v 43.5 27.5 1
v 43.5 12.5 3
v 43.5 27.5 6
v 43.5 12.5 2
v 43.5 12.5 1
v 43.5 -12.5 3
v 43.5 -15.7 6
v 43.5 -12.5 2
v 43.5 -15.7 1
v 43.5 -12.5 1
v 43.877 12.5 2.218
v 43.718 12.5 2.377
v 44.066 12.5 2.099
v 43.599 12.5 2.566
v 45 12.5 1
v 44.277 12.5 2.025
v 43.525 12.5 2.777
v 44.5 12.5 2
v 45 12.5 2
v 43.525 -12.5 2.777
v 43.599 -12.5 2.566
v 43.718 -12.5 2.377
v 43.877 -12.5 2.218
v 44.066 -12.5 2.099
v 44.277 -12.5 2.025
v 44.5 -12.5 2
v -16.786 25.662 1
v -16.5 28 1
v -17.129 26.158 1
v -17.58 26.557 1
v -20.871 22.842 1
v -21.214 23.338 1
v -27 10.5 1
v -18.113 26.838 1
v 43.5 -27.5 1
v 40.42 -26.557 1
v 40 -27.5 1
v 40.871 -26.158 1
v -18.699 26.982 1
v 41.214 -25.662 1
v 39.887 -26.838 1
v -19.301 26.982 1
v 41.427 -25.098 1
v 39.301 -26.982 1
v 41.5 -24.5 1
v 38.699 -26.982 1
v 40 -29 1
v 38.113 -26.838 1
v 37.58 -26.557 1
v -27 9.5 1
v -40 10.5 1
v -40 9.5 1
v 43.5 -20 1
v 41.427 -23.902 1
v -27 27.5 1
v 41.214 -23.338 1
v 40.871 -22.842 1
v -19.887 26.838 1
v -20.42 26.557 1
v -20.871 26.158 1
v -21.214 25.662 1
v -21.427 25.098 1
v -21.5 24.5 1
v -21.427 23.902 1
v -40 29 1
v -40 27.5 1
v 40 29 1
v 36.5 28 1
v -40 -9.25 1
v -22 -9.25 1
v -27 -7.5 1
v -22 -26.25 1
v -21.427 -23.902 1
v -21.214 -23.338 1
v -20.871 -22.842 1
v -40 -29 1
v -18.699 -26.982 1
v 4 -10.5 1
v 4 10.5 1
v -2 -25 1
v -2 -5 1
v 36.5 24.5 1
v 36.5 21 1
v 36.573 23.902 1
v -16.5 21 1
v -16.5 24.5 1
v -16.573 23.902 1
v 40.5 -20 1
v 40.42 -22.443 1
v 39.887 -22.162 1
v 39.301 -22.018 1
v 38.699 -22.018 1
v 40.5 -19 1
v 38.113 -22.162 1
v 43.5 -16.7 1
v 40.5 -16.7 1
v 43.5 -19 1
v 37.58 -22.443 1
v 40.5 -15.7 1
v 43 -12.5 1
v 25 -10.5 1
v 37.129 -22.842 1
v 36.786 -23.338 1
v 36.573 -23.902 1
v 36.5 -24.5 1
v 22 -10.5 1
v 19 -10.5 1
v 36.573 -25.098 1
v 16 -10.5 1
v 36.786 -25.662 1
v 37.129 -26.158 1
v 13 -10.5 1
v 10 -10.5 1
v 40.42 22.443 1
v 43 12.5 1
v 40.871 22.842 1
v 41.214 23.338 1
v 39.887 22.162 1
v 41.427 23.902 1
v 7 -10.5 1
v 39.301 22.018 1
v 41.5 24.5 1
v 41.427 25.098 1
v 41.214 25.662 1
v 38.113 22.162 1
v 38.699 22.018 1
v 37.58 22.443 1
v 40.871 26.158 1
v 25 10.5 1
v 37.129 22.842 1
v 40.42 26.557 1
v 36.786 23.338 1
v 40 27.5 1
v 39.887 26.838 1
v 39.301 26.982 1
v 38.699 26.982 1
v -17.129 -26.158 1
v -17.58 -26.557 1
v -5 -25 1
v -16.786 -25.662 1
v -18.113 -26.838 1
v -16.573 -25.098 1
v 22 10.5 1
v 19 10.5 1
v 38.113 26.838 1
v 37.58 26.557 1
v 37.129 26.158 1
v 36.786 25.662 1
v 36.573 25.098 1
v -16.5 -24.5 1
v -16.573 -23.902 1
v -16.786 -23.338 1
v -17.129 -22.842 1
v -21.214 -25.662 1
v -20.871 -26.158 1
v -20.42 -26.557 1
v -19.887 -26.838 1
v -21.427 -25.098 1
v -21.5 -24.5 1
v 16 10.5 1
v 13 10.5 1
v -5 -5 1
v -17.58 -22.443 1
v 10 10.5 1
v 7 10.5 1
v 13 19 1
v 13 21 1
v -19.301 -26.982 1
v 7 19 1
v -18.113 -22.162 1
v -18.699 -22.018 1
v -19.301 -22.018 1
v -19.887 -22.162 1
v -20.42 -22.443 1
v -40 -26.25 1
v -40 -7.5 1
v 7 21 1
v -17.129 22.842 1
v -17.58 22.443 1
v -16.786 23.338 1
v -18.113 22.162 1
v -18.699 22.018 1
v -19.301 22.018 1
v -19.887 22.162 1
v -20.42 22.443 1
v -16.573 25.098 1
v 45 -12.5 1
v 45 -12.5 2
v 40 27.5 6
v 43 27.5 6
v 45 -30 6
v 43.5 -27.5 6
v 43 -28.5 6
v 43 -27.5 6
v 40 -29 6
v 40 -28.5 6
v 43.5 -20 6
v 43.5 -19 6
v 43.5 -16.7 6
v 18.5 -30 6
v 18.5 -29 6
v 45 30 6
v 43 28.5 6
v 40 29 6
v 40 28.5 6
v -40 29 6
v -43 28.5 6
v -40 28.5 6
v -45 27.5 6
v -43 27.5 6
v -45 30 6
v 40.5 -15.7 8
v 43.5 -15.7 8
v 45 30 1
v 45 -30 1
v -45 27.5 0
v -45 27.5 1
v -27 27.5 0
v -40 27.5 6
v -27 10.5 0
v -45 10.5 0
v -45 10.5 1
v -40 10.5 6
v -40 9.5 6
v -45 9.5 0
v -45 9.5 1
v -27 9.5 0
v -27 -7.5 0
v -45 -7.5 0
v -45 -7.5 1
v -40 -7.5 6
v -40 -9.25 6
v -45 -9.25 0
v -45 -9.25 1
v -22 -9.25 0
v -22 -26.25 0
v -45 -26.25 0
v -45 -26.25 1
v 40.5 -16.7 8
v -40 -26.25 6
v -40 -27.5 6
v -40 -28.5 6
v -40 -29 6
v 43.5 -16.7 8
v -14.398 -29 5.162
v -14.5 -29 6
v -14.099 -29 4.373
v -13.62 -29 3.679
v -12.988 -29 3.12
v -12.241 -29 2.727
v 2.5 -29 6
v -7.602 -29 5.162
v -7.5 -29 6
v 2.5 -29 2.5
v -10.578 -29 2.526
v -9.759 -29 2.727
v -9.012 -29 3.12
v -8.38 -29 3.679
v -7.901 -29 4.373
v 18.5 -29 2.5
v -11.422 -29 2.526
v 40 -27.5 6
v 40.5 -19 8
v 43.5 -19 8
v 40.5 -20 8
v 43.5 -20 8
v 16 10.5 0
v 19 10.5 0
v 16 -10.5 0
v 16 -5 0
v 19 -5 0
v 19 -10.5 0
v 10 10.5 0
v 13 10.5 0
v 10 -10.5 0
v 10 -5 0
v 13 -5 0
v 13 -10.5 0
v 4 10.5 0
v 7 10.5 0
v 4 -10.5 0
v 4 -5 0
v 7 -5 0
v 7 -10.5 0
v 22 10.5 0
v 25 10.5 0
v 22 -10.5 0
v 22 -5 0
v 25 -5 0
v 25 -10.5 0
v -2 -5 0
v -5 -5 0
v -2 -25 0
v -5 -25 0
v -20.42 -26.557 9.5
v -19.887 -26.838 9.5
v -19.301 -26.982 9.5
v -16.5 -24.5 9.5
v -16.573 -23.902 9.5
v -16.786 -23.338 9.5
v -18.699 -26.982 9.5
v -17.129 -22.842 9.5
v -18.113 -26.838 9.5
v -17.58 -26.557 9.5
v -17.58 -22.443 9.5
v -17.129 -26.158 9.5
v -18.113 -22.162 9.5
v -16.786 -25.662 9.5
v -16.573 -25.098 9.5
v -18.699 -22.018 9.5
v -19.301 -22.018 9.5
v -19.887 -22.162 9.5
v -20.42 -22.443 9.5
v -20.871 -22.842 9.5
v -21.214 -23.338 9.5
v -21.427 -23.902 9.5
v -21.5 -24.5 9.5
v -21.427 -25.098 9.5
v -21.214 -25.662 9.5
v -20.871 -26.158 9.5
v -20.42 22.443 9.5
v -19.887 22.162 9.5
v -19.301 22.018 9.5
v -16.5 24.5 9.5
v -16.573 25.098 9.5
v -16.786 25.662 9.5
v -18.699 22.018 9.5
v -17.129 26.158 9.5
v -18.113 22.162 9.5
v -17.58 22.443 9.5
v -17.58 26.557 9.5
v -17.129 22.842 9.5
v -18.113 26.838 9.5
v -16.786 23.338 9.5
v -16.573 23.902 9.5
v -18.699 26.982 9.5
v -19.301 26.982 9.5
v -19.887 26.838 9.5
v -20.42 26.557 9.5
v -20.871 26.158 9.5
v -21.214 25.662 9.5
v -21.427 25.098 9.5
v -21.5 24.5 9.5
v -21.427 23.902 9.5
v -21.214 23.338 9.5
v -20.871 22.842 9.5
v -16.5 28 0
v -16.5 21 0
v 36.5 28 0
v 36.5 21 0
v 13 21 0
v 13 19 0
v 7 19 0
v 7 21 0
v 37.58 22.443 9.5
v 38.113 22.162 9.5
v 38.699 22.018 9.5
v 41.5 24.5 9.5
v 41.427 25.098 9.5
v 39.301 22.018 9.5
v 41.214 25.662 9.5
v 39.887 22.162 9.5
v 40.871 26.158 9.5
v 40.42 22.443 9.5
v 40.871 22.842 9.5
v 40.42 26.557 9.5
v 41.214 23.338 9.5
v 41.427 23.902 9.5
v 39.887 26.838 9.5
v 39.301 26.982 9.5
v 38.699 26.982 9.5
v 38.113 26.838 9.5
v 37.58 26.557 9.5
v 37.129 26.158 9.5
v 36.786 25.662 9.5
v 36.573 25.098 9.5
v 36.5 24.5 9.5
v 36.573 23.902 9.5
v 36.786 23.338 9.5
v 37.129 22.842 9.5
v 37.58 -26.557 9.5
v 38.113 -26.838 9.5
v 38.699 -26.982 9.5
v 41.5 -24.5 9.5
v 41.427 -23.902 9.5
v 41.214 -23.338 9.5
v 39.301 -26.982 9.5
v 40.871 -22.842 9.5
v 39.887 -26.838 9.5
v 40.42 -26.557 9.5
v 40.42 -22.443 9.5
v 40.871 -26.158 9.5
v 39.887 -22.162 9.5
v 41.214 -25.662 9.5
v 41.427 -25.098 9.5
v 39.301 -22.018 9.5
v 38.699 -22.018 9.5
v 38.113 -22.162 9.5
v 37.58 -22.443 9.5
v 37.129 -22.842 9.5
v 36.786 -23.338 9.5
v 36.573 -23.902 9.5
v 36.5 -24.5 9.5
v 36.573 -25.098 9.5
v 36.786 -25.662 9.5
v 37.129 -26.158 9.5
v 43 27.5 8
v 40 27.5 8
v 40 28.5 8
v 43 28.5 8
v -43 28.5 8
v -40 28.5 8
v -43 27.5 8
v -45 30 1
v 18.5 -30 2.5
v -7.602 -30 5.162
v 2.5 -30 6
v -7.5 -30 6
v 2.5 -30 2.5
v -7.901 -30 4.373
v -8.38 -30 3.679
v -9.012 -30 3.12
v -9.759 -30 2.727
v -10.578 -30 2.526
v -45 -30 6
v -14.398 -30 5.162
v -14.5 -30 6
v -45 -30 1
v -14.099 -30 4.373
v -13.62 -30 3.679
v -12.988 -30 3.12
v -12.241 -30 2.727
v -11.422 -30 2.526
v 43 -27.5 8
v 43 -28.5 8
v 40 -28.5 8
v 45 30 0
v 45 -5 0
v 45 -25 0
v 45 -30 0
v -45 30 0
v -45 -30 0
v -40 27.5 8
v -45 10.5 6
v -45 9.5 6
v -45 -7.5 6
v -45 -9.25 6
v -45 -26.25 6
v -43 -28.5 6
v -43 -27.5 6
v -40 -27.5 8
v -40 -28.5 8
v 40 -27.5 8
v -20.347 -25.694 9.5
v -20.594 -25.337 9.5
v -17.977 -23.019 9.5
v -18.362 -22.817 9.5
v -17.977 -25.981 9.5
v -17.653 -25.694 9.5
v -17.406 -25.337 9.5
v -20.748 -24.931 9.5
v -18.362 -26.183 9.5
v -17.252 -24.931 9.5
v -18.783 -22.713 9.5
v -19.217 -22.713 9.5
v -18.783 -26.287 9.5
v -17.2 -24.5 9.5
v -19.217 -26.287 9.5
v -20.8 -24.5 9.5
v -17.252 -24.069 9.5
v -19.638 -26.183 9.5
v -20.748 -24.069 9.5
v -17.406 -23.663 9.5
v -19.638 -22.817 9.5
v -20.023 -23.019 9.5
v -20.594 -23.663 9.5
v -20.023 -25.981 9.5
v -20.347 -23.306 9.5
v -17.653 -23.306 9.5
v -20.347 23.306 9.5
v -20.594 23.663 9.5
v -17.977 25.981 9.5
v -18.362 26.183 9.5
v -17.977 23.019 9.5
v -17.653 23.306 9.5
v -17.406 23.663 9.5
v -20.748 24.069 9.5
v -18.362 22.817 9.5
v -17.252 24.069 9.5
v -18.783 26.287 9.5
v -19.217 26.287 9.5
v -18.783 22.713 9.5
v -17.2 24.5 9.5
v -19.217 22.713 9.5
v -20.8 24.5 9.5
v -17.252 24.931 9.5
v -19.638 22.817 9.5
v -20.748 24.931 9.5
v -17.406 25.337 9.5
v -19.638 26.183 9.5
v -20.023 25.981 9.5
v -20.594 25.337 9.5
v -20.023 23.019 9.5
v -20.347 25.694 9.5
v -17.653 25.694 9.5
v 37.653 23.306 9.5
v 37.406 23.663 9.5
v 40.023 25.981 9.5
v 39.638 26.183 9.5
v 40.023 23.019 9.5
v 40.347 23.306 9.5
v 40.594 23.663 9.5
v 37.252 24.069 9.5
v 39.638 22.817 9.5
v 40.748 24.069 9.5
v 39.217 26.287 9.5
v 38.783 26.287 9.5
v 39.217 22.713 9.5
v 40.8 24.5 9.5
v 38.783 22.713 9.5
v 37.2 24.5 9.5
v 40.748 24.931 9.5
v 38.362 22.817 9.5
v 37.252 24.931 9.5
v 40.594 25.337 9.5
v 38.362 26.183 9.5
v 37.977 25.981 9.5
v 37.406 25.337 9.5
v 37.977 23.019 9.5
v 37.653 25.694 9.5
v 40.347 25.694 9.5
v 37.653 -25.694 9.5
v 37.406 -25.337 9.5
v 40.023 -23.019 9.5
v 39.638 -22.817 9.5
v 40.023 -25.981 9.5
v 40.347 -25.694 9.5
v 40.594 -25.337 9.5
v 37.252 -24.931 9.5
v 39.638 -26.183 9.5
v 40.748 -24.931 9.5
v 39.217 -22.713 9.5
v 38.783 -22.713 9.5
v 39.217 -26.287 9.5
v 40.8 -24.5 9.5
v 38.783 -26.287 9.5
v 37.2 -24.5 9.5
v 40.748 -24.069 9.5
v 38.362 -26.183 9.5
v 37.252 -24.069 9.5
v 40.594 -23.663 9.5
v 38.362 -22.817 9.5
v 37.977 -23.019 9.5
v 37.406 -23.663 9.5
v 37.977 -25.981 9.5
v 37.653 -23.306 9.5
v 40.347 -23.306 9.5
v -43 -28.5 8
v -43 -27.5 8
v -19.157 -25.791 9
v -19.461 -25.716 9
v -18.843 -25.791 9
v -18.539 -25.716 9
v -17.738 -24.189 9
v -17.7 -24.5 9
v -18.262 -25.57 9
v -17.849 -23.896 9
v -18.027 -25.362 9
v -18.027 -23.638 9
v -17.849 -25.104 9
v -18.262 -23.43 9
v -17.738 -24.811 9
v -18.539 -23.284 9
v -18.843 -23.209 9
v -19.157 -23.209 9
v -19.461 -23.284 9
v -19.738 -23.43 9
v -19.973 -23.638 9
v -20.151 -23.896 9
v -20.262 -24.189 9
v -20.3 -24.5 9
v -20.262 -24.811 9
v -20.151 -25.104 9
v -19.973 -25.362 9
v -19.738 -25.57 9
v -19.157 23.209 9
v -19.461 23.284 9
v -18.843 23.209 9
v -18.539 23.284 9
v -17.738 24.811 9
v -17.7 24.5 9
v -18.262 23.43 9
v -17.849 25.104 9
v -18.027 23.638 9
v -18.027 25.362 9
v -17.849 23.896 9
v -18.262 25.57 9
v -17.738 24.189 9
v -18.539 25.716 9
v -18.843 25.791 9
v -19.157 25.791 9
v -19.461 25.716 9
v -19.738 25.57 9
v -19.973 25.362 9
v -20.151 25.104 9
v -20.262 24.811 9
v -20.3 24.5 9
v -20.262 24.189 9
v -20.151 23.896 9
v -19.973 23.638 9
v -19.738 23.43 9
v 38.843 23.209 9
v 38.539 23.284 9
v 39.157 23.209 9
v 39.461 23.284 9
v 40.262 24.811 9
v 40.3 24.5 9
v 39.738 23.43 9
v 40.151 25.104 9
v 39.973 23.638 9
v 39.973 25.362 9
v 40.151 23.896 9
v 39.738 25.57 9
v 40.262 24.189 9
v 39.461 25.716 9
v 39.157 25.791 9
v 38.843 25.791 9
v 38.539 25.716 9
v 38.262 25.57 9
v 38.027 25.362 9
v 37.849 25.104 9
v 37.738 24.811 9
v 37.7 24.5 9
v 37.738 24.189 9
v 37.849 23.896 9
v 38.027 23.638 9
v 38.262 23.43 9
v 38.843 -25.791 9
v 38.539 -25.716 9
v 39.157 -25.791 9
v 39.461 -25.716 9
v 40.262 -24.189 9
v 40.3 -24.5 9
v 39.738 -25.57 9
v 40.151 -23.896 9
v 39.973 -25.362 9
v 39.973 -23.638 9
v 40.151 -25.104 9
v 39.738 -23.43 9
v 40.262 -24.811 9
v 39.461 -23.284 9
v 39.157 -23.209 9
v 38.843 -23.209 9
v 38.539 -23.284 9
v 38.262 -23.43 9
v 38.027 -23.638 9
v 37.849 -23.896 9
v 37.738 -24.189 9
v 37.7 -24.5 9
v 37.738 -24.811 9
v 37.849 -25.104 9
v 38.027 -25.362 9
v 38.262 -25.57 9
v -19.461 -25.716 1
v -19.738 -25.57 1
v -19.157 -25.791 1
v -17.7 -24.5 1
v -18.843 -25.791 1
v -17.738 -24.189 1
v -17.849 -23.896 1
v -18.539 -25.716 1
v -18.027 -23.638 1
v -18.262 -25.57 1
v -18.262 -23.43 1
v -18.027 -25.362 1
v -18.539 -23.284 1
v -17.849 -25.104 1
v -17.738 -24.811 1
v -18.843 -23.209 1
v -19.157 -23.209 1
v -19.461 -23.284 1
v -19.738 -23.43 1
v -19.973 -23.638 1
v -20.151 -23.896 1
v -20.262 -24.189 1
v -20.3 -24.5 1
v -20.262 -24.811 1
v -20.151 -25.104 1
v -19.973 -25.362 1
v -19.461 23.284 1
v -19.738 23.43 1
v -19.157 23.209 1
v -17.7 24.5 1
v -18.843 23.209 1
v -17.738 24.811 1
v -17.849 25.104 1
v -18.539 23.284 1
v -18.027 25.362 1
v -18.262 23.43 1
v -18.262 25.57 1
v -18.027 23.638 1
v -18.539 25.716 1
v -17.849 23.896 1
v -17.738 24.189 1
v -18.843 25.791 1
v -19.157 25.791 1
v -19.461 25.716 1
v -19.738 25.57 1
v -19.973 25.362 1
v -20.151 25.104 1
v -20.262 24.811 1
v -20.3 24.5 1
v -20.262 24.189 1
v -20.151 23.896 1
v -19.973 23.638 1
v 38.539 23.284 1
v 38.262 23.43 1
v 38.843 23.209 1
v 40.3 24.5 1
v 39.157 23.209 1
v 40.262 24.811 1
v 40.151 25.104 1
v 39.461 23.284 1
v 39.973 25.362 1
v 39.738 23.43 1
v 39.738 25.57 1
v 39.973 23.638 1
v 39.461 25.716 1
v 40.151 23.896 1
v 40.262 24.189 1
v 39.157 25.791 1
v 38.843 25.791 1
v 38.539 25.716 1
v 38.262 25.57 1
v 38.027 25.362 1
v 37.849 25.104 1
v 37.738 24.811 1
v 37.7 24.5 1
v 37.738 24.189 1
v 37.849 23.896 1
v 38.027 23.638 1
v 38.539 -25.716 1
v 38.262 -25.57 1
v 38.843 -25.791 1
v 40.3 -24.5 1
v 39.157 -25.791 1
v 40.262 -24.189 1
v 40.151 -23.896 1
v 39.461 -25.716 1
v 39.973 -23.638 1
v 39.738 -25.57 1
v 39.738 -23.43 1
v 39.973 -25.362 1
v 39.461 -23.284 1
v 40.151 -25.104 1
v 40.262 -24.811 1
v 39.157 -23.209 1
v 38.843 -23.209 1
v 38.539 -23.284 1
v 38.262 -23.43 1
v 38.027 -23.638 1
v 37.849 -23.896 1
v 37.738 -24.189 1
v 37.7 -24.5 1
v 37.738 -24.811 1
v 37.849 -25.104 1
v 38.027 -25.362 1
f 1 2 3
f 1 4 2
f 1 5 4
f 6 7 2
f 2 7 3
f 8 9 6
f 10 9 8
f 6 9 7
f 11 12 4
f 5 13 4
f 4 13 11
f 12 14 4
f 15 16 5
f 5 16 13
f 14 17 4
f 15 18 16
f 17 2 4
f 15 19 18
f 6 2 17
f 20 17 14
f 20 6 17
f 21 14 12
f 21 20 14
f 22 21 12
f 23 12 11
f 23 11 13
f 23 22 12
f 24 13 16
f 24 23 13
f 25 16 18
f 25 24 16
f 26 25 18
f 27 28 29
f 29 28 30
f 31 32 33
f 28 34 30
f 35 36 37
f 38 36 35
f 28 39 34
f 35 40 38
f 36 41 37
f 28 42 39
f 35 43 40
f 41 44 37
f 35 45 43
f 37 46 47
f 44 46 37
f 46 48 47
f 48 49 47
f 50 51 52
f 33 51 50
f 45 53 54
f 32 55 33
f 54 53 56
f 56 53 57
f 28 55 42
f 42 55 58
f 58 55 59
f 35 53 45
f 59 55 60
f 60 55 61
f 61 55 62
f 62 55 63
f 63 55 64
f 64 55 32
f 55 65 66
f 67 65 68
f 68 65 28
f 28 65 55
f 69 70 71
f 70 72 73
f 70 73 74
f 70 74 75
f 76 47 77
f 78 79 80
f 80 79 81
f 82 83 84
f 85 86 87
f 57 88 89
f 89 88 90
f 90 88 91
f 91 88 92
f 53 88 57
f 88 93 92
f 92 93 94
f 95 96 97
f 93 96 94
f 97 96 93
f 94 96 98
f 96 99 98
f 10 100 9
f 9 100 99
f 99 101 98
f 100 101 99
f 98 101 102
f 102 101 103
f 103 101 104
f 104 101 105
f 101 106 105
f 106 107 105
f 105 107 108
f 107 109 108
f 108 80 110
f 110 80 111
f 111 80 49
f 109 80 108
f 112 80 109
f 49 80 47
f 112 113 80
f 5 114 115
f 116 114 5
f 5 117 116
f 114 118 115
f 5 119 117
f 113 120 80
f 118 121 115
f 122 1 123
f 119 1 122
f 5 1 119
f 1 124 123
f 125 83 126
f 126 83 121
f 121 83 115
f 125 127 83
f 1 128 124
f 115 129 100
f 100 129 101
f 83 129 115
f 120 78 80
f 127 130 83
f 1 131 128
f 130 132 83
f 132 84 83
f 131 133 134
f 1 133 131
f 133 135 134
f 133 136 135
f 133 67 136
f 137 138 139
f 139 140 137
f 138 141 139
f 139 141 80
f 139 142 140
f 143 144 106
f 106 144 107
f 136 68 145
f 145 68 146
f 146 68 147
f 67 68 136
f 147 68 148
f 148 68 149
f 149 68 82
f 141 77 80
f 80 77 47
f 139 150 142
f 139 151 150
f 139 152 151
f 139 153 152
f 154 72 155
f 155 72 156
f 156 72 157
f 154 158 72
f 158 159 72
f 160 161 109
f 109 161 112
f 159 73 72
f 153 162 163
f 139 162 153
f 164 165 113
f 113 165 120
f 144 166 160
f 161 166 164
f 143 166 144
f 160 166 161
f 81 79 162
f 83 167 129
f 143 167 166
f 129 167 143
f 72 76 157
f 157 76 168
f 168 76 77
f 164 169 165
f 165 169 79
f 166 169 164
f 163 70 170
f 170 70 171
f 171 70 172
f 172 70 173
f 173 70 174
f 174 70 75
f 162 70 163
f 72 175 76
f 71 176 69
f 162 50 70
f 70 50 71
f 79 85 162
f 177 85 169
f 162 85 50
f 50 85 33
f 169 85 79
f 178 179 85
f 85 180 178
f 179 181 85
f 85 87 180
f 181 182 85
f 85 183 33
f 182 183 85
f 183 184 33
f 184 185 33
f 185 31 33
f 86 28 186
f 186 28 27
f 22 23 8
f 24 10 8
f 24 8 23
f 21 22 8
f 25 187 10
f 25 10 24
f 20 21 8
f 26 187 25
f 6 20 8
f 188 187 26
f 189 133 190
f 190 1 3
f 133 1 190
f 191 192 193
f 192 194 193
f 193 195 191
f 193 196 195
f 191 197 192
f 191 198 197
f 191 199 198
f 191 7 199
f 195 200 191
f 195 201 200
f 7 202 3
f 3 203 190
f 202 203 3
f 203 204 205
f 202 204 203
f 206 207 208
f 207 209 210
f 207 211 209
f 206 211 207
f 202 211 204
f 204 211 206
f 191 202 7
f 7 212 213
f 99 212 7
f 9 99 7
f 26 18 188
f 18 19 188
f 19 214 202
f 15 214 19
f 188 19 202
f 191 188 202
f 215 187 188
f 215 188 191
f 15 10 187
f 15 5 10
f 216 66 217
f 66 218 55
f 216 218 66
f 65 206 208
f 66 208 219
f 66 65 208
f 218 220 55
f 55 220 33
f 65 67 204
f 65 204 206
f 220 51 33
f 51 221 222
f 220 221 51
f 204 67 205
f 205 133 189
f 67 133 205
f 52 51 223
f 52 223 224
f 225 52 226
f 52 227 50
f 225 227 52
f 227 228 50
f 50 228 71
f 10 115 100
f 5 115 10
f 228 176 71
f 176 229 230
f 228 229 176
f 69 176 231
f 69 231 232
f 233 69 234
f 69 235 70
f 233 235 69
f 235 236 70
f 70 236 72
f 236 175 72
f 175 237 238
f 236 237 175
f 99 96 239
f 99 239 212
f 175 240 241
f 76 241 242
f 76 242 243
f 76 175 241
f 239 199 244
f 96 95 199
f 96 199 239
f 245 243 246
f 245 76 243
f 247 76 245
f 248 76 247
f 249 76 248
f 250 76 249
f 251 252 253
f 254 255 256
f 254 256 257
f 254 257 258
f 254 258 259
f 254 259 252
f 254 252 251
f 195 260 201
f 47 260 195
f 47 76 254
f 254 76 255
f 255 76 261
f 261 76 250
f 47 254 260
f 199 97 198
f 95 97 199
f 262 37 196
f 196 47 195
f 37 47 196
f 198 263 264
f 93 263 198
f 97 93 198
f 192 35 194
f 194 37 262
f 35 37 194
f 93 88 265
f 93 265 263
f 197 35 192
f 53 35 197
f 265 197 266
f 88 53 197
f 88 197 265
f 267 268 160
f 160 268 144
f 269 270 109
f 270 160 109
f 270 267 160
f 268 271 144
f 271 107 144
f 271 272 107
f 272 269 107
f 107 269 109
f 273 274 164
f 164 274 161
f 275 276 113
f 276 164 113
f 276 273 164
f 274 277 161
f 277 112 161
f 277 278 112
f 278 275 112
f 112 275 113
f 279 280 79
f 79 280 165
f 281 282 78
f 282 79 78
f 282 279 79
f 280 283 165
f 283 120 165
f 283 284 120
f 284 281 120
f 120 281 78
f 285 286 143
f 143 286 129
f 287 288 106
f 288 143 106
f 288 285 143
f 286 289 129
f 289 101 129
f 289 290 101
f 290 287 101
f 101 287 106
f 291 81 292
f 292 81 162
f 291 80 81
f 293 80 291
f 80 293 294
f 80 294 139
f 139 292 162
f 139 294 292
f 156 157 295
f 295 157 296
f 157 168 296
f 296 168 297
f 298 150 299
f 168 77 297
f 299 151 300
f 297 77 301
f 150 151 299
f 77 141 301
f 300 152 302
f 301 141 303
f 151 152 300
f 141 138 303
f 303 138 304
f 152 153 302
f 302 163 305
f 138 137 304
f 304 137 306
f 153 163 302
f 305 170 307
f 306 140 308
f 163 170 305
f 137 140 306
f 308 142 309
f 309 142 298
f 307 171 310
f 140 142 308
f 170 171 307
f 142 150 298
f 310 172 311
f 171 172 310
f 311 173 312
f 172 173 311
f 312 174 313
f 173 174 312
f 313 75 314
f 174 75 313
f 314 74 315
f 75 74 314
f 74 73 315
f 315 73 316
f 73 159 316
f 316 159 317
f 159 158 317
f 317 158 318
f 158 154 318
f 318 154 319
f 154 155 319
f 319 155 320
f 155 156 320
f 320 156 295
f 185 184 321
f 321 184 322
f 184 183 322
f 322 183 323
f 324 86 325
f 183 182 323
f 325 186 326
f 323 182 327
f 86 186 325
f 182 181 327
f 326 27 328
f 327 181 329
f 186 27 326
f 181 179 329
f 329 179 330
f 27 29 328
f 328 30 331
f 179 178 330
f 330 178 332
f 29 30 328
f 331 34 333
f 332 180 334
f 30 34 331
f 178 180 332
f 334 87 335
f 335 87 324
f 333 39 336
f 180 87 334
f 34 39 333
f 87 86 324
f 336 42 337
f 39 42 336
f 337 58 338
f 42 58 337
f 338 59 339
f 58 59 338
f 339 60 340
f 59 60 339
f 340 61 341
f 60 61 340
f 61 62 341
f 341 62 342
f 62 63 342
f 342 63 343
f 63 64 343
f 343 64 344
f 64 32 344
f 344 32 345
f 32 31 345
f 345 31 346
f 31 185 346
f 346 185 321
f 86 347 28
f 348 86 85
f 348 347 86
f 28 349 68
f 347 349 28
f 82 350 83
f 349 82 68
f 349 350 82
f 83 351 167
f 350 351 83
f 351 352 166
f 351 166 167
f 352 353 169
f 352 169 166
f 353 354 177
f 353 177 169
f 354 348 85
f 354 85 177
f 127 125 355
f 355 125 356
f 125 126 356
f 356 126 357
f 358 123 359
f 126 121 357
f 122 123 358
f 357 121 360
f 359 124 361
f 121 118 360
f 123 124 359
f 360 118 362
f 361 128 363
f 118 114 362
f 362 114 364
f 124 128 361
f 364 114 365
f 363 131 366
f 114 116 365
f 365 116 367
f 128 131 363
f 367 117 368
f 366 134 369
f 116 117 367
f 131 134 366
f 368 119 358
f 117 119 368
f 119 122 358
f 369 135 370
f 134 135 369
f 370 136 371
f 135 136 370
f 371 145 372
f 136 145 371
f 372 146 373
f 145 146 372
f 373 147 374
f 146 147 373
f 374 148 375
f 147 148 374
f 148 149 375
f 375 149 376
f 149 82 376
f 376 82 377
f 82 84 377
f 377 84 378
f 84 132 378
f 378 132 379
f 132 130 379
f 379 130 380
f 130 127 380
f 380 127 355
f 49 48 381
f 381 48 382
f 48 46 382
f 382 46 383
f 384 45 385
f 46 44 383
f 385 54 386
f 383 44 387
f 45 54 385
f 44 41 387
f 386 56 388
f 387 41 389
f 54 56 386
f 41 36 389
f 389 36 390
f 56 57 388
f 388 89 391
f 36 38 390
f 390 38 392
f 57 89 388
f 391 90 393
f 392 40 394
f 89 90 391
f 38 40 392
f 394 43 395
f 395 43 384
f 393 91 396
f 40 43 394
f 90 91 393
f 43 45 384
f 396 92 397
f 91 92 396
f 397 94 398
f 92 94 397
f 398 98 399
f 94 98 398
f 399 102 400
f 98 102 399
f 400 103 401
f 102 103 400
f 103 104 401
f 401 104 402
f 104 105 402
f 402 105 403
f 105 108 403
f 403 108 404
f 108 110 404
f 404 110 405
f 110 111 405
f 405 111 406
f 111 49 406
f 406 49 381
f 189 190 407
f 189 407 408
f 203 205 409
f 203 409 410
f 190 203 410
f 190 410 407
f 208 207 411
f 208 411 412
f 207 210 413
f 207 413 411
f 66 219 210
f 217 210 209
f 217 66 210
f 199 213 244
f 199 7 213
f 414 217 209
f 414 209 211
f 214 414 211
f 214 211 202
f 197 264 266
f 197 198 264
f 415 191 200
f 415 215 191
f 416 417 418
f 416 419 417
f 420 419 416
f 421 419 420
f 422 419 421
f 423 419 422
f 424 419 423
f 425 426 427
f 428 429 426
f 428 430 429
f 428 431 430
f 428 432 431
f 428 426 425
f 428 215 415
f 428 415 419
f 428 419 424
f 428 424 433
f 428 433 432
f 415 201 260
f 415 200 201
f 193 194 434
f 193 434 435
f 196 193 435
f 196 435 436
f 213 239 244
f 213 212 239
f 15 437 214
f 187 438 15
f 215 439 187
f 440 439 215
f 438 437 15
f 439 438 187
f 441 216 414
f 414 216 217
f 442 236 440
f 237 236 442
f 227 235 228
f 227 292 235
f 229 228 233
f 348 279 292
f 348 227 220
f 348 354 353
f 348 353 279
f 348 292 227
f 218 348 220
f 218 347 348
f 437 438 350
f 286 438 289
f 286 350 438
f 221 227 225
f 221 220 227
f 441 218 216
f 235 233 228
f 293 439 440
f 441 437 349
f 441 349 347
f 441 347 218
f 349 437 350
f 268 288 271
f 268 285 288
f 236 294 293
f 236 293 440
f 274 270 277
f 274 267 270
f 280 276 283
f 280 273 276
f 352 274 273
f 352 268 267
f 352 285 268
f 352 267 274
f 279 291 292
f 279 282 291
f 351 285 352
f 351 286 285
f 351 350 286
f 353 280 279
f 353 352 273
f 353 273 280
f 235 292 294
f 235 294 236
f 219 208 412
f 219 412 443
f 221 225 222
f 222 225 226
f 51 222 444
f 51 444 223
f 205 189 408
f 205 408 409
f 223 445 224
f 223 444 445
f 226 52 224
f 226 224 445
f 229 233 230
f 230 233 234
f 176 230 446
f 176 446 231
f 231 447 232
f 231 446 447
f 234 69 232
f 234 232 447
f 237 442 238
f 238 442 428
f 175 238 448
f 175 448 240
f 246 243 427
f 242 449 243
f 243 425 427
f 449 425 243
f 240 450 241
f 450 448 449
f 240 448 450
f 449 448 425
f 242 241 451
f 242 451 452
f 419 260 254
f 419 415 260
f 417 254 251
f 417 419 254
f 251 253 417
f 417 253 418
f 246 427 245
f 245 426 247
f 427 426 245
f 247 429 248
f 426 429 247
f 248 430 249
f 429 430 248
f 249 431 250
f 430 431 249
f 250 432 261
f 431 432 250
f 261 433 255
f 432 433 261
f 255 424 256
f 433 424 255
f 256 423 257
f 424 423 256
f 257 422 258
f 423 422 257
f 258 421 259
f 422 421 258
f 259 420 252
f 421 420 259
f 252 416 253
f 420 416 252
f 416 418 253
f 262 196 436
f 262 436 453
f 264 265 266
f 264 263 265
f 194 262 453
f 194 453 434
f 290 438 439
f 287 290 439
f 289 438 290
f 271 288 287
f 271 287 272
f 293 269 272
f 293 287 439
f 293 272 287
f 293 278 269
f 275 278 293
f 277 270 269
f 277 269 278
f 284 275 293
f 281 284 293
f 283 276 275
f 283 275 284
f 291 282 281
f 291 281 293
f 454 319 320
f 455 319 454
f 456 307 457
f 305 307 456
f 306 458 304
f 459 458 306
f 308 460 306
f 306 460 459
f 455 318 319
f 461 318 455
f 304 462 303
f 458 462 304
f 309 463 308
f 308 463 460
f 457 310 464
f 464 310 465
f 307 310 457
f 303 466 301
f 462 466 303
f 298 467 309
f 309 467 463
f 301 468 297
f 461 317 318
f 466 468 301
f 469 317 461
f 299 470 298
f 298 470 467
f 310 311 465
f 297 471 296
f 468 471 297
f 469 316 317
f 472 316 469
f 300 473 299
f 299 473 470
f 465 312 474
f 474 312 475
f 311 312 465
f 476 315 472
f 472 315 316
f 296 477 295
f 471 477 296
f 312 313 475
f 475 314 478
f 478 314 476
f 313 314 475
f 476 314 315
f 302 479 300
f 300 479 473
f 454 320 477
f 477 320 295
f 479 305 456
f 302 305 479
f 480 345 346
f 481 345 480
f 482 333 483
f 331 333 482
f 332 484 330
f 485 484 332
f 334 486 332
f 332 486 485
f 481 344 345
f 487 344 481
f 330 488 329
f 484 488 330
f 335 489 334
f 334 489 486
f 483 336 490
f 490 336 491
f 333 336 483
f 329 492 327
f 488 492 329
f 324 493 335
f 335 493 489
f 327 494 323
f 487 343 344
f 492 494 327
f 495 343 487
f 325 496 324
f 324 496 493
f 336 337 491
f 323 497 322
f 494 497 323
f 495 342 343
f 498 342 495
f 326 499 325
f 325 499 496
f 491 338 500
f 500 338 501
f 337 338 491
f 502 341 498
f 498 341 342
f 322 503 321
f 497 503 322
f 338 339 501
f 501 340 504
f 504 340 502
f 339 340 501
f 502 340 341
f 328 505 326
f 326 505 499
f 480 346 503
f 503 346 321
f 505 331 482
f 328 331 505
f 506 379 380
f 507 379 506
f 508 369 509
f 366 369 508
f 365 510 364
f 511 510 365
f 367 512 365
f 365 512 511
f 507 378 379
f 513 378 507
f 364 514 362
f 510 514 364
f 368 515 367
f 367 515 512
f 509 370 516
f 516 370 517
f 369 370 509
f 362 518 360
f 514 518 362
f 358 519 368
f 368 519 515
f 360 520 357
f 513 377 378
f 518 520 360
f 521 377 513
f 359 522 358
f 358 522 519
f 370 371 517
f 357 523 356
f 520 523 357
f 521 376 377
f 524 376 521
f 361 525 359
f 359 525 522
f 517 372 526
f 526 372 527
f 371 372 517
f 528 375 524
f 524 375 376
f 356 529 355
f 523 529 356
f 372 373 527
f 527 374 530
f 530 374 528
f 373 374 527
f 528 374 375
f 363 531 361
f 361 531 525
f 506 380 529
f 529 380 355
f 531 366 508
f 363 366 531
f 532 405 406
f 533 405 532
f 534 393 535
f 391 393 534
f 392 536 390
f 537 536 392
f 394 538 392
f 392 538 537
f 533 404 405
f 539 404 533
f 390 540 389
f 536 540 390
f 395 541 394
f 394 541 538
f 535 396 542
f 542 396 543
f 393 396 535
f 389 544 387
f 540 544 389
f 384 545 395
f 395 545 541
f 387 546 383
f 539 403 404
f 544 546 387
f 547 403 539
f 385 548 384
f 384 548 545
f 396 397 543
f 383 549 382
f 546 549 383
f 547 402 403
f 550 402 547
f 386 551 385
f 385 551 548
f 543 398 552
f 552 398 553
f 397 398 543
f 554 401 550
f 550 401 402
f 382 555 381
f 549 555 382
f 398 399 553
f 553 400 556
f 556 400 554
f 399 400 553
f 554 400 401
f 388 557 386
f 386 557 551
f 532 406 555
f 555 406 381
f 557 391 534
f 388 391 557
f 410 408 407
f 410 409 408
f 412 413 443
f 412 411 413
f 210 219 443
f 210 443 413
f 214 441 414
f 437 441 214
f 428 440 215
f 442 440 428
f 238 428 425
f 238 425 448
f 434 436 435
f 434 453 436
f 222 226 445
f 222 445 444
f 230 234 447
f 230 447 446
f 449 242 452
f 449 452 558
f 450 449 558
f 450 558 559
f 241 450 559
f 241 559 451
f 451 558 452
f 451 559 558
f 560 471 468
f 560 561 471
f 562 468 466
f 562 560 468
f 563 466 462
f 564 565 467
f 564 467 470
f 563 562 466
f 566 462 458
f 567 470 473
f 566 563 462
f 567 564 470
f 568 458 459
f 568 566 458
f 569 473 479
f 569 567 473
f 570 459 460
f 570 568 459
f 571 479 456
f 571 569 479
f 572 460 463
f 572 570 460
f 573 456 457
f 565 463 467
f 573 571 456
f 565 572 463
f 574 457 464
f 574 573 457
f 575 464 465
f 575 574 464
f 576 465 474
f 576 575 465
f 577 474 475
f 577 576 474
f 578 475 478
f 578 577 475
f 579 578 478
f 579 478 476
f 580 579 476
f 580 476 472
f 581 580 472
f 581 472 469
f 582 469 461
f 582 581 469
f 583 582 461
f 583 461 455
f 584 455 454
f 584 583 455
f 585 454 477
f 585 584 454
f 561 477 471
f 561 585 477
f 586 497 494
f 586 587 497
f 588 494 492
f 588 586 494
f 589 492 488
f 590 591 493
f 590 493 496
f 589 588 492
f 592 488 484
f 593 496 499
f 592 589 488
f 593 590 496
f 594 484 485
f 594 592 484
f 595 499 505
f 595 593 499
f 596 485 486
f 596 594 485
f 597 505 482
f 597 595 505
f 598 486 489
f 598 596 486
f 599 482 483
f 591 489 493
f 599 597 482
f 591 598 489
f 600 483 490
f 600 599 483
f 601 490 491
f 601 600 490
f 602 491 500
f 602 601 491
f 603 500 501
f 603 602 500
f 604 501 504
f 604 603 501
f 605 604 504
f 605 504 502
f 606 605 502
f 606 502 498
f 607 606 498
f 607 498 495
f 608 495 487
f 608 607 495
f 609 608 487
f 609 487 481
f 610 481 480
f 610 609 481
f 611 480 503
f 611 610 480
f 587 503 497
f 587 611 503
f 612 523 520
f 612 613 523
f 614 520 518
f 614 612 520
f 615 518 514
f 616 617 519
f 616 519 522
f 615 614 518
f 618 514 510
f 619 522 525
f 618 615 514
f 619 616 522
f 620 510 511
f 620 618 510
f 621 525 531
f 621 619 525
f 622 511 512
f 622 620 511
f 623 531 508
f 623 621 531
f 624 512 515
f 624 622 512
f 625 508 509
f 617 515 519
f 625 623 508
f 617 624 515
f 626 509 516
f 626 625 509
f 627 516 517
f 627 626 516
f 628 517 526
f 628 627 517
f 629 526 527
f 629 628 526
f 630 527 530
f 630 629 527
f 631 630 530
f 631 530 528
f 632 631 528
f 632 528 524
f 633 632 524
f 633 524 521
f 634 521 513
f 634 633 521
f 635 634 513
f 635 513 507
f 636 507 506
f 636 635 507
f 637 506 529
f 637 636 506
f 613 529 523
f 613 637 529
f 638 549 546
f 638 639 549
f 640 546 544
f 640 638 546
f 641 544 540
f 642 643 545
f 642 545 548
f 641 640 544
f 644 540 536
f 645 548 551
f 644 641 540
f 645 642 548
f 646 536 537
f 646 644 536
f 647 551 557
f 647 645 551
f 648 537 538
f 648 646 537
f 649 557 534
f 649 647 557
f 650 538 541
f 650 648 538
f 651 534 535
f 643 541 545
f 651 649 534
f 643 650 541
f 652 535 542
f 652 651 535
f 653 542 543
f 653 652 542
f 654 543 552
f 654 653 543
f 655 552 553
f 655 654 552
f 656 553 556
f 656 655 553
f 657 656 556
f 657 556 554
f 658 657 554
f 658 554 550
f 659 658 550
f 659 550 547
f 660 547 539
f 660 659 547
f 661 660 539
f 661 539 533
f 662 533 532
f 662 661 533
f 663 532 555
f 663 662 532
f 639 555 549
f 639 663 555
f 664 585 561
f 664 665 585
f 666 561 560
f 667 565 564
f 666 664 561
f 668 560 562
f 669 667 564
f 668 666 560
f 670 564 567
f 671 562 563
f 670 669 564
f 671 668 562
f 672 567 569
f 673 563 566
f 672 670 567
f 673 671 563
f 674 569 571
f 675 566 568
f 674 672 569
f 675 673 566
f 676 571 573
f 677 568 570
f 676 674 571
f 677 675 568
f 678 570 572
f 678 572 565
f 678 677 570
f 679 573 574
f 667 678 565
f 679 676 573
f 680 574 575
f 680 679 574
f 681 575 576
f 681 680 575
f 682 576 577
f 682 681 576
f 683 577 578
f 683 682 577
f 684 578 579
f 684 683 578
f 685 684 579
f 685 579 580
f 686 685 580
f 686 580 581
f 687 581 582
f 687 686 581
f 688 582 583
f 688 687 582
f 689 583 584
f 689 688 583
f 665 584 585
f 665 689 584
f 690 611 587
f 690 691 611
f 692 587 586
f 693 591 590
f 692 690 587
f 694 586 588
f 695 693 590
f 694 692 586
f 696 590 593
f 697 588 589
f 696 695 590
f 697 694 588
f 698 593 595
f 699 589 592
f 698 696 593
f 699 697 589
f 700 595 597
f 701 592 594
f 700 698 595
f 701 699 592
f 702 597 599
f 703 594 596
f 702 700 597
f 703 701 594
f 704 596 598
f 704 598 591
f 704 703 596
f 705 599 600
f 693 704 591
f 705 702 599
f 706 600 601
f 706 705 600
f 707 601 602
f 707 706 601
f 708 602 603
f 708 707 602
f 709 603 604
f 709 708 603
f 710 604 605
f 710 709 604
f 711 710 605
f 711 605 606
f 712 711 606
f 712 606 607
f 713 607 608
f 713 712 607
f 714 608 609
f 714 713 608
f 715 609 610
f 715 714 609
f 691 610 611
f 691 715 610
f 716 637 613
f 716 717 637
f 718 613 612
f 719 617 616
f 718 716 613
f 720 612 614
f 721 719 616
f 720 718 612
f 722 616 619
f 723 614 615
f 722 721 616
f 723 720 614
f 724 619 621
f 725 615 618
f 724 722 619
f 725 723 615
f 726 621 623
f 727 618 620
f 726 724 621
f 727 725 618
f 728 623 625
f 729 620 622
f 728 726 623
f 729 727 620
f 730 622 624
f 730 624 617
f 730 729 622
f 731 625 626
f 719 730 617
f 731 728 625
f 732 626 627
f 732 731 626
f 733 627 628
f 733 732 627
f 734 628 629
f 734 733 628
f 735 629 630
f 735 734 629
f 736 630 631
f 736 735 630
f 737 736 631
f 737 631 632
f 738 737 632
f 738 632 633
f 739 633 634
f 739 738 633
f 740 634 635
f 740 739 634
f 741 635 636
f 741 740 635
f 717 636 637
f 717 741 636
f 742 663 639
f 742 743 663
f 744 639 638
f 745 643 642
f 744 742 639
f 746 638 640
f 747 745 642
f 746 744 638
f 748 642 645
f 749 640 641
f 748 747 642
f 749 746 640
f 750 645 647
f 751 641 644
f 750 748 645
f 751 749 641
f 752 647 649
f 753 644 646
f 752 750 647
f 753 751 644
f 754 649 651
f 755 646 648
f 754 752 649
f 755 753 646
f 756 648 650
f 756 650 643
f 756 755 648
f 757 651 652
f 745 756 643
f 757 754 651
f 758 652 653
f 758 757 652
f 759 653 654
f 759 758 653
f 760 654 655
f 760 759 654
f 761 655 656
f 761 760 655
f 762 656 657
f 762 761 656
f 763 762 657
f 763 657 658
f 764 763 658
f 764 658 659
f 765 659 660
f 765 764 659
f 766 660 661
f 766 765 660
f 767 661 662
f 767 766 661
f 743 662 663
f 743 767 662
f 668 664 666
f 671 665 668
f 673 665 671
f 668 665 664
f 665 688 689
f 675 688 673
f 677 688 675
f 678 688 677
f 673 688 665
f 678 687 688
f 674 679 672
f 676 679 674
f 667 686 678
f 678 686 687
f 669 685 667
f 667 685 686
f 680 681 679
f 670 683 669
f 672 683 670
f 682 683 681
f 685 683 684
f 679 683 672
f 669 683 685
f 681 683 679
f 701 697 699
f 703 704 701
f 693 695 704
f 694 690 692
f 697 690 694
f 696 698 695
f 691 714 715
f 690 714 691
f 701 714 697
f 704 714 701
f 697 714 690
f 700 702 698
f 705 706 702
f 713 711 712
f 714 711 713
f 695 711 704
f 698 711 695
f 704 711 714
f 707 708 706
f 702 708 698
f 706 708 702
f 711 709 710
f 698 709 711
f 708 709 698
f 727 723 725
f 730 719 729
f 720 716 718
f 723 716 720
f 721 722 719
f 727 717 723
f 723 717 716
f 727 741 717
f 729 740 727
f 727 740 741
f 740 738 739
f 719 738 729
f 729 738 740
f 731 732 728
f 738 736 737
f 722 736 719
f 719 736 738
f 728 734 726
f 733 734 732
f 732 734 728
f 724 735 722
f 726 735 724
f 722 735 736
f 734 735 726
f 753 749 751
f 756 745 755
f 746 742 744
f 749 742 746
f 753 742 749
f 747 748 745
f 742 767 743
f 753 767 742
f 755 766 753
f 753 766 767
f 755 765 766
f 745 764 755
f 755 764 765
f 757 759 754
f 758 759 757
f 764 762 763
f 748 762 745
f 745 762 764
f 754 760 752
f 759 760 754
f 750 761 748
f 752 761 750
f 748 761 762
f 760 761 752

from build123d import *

# Parameters (mm, degrees)
BOX002_W      = 3
BOX002_H      = 20
BOX002_DEPTH  = 5
BOX001_W      = 51
BOX001_H      = 20
BOX001_DEPTH  = 1
BOX_W         = 2
BOX_H         = 25
BOX_DEPTH     = 1
SKETCH_W      = 3
SKETCH_H      = 21
PAD_DEPTH     = 1
SKETCH001_W   = 5
SKETCH001_H   = 1.75
SKETCH001_H_2 = 1
PAD001_DEPTH  = 5
SKETCH002_W   = 3
SKETCH002_H   = 1
PAD002_DEPTH  = 2
SKETCH003_R   = 2.5
SKETCH003_R_2 = 1.3
PAD003_DEPTH  = 8.5
SKETCH004_W   = 16
SKETCH004_H   = 3.5
POCKET_DEPTH  = 1
CHAMFER_SIZE  = 0.5
SKETCH005_W   = 3
SKETCH005_H   = 1
PAD004_DEPTH  = 7
FILLET_R      = 1


with BuildPart() as w_rfel002:
    # Box002 → Box002 (new body)
    with BuildSketch(Plane(origin=(-5, -25, -1), x_dir=(1, 0, 0), z_dir=(0, 0, 1))):
        with Locations((1.5, 10)):
            Rectangle(BOX002_W, BOX002_H)
    extrude(amount=BOX002_DEPTH)


with BuildPart() as wire_channel:
    # Box001 → Box001 (new body)
    with BuildSketch(Plane(origin=(-5, -25, -1), x_dir=(1, 0, 0), z_dir=(0, 0, 1))):
        with Locations((25.5, 10)):
            Rectangle(BOX001_W, BOX001_H)
    extrude(amount=BOX001_DEPTH)

    # Fusion: union Würfel002
    add(w_rfel002.part)


with BuildPart() as w_rfel:
    # Box → Box (new body)
    with BuildSketch(Plane(origin=(43, -12.5, 1), x_dir=(1, 0, 0), z_dir=(0, 0, 1))):
        with Locations((1, 12.5)):
            Rectangle(BOX_W, BOX_H)
    extrude(amount=BOX_DEPTH)


with BuildPart() as cut001:
    # Sketch → Pad (new body)
    with BuildSketch(Plane.XY):
        Polygon((-45, 30), (45, 30), (45, -30), (-45, -30), (-45, -26.25), (-22, -26.25), (-22, -9.25), (-45, -9.25), (-45, -7.5), (-27, -7.5), (-27, 9.5), (-45, 9.5), (-45, 10.5), (-27, 10.5), (-27, 27.5), (-45, 27.5), align=None)
        Polygon((36.5, 21), (36.5, 28), (-16.5, 28), (-16.5, 21), (7, 21), (7, 19), (13, 19), (13, 21), align=None, mode=Mode.SUBTRACT)
        with Locations((5.5, 0)):
            Rectangle(SKETCH_W, SKETCH_H, mode=Mode.SUBTRACT)
        with Locations((11.5, 0)):
            Rectangle(SKETCH_W, SKETCH_H, mode=Mode.SUBTRACT)
        with Locations((17.5, 0)):
            Rectangle(SKETCH_W, SKETCH_H, mode=Mode.SUBTRACT)
        with Locations((23.5, 0)):
            Rectangle(SKETCH_W, SKETCH_H, mode=Mode.SUBTRACT)
    extrude(amount=PAD_DEPTH)

    # Sketch001 (on Face42 of Pad) → Pad001 (new body)
    with BuildSketch(Plane.XY.offset(1)):
        with Locations((-42.5, -8.375)):
            Rectangle(SKETCH001_W, SKETCH001_H)
        with Locations((-42.5, 10)):
            Rectangle(SKETCH001_W, SKETCH001_H_2)
        Polygon((-45, 30), (45, 30), (45, -30), (-45, -30), (-45, -26.25), (-40, -26.25), (-40, -29), (40, -29), (40, -27.5), (43.5, -27.5), (43.5, 27.5), (40, 27.5), (40, 29), (-40, 29), (-40, 27.5), (-45, 27.5), align=None)
    extrude(amount=PAD001_DEPTH)

    # Sketch002 (on Face56 of Pad001) → Pad002 (new body)
    with BuildSketch(Plane.XY.offset(6)):
        with Locations((41.5, 28)):
            Rectangle(SKETCH002_W, SKETCH002_H)
        with Locations((-41.5, 28)):
            Rectangle(SKETCH002_W, SKETCH002_H)
        with Locations((-41.5, -28)):
            Rectangle(SKETCH002_W, SKETCH002_H)
        with Locations((41.5, -28)):
            Rectangle(SKETCH002_W, SKETCH002_H)
    extrude(amount=PAD002_DEPTH)

    # Sketch003 (on Face47 of Pad002) → Pad003 (new body)
    with BuildSketch(Plane.XY.offset(1)):
        with Locations((-19, 24.5)):
            Circle(SKETCH003_R)
        with Locations((-19, 24.5)):
            Circle(SKETCH003_R_2, mode=Mode.SUBTRACT)
        with Locations((39, 24.5)):
            Circle(SKETCH003_R)
        with Locations((39, 24.5)):
            Circle(SKETCH003_R_2, mode=Mode.SUBTRACT)
        with Locations((-19, -24.5)):
            Circle(SKETCH003_R)
        with Locations((-19, -24.5)):
            Circle(SKETCH003_R_2, mode=Mode.SUBTRACT)
        with Locations((39, -24.5)):
            Circle(SKETCH003_R)
        with Locations((39, -24.5)):
            Circle(SKETCH003_R_2, mode=Mode.SUBTRACT)
    extrude(amount=PAD003_DEPTH)

    # Sketch004 (on Face45 of Pad003) → Pocket (cut)
    with BuildSketch(Plane.XZ.offset(30)):
        with BuildLine():
            ThreePointArc((-14.5, 6), (-11, 2.5), (-7.5, 6))
            Line((-14.5, 6), (-7.5, 6))
        make_face()
        with Locations((10.5, 4.25)):
            Rectangle(SKETCH004_W, SKETCH004_H)
    extrude(amount=-POCKET_DEPTH, mode=Mode.SUBTRACT)

    # Chamfer
    chamfer_edges = [cut001.edges().sort_by_distance(p)[0] for p in [
        (-20.3, 24.5, 9.5),
        (37.7, 24.5, 9.5),
        (37.7, -24.5, 9.5),
        (-20.3, -24.5, 9.5),
    ]]
    chamfer(chamfer_edges, length=CHAMFER_SIZE)

    # Sketch005 (on Face5 of Chamfer) → Pad004 (new body)
    with BuildSketch(Plane.XY.offset(1)):
        with Locations((42, -16.2)):
            Rectangle(SKETCH005_W, SKETCH005_H)
        with Locations((42, -19.5)):
            Rectangle(SKETCH005_W, SKETCH005_H)
    extrude(amount=PAD004_DEPTH)

    # Cut: cut Würfel
    add(w_rfel.part, mode=Mode.SUBTRACT)

    # Fillet
    fillet_edges = [cut001.edges().sort_by_distance(p)[0] for p in [
        (43.5, 0, 2),
    ]]
    fillet(fillet_edges, radius=FILLET_R)

    # Cut001: cut wire channel
    add(wire_channel.part, mode=Mode.SUBTRACT)


solid = cut001.part
